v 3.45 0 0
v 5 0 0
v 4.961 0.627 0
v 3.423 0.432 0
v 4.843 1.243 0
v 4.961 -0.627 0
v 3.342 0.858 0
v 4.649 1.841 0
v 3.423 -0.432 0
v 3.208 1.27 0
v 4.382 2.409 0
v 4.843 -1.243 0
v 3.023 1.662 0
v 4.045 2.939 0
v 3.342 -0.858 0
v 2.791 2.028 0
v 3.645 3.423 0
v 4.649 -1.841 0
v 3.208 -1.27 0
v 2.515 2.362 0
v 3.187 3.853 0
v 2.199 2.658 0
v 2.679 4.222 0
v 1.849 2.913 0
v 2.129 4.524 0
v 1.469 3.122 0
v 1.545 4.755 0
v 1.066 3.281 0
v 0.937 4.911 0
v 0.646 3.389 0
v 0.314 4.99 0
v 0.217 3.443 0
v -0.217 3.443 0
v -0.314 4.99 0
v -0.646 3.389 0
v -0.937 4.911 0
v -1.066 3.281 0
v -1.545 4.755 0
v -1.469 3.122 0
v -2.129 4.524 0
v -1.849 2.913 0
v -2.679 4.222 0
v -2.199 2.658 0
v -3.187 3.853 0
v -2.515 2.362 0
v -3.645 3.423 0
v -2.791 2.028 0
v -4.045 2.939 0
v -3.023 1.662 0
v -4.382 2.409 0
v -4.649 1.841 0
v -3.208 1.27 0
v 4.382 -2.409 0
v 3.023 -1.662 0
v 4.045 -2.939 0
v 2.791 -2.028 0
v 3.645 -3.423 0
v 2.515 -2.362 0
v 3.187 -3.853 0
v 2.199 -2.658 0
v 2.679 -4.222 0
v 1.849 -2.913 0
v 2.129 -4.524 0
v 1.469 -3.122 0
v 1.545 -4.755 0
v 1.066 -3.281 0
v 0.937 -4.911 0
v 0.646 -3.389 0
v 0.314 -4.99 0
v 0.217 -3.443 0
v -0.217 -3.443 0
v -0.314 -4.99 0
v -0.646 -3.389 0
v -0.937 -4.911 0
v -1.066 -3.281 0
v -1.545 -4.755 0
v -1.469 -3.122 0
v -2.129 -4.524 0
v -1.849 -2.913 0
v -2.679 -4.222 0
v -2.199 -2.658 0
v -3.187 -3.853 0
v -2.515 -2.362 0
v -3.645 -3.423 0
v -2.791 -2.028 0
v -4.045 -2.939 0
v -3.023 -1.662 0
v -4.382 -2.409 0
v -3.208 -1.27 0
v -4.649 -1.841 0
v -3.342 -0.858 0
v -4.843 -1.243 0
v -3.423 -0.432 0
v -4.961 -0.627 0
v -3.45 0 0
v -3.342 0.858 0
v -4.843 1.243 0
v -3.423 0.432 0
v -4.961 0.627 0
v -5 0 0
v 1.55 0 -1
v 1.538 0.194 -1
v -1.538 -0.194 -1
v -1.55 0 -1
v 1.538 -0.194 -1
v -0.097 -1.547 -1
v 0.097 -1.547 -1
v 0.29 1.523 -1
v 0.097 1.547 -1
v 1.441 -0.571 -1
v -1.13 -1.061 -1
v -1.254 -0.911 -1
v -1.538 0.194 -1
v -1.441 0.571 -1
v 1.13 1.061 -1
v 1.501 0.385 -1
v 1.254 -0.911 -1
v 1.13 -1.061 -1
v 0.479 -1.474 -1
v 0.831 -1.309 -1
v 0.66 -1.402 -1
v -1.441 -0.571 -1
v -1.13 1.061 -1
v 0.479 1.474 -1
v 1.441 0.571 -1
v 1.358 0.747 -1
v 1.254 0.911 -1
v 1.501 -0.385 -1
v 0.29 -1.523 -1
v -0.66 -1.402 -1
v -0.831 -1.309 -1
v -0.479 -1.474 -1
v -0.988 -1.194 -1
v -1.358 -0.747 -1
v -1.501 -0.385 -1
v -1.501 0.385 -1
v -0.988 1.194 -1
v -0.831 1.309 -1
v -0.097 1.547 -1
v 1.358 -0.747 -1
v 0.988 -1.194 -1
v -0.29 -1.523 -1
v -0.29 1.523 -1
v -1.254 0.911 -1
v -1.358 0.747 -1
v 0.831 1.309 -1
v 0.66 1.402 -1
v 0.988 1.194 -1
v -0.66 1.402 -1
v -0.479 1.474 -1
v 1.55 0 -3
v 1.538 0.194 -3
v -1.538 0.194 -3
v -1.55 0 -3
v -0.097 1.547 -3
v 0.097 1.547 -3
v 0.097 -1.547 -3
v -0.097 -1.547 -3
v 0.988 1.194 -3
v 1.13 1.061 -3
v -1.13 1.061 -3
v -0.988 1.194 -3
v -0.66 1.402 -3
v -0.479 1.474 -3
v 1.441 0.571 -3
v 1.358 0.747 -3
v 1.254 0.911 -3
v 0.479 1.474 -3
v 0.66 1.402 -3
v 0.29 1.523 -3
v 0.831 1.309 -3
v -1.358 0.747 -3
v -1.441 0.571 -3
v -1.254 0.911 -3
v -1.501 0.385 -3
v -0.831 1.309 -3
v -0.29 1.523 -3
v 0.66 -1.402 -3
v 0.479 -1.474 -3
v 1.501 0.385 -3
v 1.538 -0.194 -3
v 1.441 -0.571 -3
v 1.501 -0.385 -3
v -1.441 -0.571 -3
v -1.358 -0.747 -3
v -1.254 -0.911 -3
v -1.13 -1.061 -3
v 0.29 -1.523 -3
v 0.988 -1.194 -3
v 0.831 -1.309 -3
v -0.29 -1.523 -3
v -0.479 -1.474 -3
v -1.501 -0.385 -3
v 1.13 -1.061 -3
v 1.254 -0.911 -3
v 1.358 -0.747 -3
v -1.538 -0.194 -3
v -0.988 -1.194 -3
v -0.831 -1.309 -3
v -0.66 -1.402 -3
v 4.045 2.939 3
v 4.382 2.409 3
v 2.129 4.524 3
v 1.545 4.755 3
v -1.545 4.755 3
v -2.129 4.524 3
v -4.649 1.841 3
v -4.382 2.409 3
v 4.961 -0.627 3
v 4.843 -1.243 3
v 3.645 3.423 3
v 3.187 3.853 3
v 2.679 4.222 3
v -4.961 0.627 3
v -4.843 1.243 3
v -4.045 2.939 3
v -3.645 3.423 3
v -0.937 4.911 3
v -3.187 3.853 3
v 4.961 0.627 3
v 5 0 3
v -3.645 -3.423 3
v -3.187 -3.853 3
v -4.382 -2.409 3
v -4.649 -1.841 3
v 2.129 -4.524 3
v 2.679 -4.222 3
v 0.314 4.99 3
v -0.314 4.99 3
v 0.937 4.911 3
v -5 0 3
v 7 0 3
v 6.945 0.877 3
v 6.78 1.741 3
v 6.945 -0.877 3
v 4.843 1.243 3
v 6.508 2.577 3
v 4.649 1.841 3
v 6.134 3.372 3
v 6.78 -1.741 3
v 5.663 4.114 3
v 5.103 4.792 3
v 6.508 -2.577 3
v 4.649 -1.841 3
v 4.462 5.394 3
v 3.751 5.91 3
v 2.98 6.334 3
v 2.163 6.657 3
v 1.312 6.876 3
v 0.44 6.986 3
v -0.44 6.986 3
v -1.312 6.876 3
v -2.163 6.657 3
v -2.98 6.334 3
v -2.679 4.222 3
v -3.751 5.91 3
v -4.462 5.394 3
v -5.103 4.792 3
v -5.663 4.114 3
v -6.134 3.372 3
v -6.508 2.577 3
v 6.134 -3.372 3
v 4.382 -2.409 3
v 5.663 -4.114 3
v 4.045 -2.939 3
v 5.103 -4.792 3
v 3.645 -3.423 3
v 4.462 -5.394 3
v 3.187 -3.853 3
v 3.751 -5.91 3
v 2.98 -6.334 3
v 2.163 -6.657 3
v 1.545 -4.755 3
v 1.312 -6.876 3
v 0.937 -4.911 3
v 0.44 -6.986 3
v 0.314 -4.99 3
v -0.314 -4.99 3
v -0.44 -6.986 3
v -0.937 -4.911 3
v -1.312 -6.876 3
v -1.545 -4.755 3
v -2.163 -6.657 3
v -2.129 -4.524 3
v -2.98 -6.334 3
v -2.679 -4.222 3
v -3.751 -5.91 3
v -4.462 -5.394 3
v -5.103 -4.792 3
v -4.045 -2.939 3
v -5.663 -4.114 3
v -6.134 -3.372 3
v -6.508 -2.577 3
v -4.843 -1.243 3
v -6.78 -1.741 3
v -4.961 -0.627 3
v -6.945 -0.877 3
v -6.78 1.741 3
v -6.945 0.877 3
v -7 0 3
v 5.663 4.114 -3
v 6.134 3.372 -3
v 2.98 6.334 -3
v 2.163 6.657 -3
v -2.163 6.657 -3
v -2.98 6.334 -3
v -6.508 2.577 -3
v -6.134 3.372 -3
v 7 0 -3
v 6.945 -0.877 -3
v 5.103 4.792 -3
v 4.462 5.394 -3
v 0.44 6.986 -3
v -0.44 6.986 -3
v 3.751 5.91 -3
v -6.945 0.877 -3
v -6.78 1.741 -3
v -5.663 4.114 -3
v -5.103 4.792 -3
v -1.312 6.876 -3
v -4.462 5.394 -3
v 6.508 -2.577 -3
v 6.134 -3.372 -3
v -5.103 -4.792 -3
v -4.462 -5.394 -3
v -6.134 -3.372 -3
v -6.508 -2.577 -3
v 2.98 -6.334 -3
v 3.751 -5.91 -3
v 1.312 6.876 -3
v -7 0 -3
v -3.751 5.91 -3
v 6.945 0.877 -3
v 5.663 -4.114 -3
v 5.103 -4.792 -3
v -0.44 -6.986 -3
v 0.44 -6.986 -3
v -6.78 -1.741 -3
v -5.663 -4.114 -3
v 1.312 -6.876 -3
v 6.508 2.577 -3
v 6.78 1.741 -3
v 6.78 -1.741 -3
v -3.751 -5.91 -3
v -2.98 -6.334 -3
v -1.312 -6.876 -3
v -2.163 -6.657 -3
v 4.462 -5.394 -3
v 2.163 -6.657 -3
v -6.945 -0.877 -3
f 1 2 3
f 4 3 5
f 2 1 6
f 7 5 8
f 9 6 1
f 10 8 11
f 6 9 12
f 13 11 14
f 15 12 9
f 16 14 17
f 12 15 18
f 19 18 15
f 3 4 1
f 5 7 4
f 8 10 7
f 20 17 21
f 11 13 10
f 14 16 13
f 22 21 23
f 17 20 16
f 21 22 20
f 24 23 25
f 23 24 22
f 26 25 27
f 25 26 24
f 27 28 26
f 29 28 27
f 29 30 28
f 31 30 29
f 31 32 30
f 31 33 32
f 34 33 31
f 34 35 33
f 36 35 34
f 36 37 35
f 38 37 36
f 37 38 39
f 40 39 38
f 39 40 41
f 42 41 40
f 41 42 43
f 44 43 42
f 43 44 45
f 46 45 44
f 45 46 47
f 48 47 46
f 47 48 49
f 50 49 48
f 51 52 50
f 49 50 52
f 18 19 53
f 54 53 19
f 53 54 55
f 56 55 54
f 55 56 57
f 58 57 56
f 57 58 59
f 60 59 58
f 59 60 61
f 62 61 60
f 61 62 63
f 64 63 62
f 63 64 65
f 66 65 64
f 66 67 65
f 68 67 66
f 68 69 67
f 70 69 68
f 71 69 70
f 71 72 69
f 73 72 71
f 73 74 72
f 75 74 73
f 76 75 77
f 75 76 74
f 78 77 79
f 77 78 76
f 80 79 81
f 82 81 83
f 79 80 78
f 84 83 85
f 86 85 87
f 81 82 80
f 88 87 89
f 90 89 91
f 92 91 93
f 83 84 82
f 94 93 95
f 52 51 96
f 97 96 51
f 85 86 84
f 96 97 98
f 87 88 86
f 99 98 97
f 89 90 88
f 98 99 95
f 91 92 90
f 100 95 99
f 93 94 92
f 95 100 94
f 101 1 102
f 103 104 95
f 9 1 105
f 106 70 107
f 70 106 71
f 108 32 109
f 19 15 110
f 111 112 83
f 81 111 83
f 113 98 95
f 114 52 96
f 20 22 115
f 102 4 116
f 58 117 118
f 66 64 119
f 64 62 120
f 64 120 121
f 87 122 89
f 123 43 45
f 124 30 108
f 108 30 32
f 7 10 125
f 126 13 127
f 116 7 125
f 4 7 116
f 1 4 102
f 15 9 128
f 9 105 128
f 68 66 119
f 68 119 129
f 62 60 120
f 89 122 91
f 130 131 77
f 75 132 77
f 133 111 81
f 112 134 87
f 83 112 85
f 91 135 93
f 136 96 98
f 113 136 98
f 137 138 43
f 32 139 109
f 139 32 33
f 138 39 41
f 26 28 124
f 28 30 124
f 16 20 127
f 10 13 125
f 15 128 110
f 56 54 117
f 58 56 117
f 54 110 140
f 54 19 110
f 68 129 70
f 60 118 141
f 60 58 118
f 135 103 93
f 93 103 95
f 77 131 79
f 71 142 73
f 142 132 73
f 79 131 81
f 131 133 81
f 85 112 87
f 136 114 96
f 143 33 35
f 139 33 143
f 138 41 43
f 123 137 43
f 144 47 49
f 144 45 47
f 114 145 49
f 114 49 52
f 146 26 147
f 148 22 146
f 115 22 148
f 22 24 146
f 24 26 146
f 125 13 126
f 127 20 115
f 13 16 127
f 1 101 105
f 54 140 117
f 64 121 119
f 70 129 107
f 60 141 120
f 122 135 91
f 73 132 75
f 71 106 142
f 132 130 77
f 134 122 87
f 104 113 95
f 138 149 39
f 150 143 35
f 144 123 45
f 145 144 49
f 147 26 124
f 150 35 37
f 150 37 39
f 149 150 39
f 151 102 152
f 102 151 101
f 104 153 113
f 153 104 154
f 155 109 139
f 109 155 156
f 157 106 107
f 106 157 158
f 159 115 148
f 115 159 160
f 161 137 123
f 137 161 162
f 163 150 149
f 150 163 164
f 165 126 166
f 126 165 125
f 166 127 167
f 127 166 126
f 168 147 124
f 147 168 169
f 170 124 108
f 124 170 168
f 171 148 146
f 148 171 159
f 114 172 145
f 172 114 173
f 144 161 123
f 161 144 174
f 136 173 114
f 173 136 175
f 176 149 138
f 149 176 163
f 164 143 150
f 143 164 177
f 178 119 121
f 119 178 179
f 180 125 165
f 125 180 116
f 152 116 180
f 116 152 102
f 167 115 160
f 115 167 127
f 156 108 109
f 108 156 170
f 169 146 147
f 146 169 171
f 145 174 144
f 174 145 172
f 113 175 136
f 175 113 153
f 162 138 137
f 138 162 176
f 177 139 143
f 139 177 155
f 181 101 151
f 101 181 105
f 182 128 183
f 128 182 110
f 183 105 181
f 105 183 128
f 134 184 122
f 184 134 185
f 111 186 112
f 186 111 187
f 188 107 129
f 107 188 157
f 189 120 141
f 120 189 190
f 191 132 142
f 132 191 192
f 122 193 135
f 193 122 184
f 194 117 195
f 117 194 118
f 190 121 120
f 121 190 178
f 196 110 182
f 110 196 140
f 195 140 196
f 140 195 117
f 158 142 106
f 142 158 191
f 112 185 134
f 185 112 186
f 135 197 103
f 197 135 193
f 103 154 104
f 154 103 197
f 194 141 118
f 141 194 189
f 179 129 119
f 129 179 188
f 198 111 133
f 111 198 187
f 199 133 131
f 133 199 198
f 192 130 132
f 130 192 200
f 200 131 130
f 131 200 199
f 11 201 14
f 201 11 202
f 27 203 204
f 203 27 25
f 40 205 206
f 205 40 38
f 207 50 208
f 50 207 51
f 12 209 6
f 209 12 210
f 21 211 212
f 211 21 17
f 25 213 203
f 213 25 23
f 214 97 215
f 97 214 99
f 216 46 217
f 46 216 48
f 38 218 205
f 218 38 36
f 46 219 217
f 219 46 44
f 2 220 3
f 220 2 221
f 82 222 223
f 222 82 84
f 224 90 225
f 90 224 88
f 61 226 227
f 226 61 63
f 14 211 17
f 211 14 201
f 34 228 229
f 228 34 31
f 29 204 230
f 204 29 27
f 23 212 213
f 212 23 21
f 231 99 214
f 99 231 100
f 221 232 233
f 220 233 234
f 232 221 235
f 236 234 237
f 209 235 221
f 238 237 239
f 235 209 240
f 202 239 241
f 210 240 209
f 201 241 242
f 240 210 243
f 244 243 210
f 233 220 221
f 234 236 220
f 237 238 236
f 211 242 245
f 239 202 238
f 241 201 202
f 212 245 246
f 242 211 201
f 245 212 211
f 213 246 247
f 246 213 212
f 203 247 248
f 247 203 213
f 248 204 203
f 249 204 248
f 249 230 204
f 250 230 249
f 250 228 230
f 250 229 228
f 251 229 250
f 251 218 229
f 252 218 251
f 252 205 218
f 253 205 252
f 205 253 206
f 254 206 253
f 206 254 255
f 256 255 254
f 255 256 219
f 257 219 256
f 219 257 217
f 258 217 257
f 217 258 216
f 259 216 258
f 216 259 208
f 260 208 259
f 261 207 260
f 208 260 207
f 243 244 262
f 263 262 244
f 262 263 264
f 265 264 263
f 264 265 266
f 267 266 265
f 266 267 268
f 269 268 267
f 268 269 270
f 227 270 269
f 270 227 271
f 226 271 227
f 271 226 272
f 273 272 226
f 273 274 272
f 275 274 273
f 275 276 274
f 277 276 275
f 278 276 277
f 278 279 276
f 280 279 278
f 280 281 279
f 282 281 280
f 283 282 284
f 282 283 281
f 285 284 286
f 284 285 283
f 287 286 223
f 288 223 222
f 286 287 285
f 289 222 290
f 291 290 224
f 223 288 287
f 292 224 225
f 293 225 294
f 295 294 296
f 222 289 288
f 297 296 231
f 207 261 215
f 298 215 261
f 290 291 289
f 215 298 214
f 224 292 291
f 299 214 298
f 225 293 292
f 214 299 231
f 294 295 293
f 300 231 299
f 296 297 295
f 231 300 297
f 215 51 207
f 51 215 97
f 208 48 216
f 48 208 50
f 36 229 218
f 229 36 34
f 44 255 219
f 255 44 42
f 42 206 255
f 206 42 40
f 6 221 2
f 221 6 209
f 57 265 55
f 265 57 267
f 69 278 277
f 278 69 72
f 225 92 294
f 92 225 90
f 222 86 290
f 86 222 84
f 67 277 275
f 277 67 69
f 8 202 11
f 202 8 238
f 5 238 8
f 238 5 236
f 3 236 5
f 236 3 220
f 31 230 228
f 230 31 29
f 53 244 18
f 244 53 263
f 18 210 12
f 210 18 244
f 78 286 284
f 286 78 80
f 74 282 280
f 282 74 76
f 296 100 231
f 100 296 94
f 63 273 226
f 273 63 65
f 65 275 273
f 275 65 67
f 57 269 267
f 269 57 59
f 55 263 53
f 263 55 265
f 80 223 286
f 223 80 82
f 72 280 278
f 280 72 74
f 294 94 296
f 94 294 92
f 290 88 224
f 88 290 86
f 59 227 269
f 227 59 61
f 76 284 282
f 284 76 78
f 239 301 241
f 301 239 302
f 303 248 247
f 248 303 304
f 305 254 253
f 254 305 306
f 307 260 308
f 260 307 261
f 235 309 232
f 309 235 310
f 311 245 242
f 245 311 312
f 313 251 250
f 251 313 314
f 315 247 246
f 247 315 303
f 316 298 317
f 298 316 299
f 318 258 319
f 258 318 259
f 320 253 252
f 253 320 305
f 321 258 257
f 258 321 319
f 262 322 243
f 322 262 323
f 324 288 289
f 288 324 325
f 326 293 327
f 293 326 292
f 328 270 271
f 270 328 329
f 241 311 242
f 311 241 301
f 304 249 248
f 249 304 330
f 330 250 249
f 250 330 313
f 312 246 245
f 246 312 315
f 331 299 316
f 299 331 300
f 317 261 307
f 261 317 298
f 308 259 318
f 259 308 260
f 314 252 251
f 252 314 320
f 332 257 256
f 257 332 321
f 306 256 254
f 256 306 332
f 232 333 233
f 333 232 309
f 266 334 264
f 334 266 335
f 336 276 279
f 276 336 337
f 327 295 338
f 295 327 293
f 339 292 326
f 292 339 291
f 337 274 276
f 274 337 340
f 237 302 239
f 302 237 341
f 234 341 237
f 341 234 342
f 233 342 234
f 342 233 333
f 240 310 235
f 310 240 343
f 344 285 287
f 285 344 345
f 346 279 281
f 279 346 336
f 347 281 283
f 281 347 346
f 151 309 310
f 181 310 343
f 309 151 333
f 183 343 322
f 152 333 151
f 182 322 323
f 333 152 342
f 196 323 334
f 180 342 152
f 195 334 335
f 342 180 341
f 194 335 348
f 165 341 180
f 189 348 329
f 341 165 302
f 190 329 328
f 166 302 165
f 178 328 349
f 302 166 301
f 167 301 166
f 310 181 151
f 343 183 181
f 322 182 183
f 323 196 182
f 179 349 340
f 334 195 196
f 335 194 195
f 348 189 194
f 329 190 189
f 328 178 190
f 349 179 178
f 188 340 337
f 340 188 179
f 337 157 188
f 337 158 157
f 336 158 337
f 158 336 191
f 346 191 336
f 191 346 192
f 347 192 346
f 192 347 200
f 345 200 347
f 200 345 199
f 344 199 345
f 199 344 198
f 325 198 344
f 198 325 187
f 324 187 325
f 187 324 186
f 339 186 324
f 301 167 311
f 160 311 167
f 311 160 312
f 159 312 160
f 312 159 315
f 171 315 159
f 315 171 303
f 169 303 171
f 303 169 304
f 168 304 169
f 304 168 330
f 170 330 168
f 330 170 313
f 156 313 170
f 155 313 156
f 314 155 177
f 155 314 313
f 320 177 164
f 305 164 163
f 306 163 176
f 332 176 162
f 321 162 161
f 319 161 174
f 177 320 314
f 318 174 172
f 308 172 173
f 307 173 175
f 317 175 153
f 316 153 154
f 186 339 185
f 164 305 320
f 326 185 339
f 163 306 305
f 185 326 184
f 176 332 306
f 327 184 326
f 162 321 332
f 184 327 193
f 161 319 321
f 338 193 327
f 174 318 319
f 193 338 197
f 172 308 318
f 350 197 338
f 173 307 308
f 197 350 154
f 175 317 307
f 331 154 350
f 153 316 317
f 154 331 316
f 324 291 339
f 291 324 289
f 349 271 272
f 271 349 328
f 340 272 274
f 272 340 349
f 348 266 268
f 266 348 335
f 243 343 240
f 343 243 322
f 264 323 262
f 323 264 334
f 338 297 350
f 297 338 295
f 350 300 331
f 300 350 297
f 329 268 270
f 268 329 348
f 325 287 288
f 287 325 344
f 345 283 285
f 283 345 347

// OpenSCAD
$fn = 50;


difference() {
	union() {
		translate(v = [0, 0, -3.0000000000]) {
			cylinder(h = 6, r = 7.0000000000);
		}
	}
	union() {
		translate(v = [0, 0, 0]) {
			rotate(a = [0, 0, 0]) {
				difference() {
					union() {
						translate(v = [0, 0, -6.0000000000]) {
							cylinder(h = 6, r = 1.2500000000);
						}
						translate(v = [0, 0, -1.0000000000]) {
							cylinder(h = 1.0000000000, r1 = 1.5500000000, r2 = 3.4500000000);
						}
						translate(v = [0, 0, -6.0000000000]) {
							cylinder(h = 6, r = 1.5500000000);
						}
						translate(v = [0, 0, -6.0000000000]) {
							cylinder(h = 6, r = 1.2500000000);
						}
					}
					union();
				}
			}
		}
		#cylinder(h = 3, r = 5.0000000000);
	}
}
